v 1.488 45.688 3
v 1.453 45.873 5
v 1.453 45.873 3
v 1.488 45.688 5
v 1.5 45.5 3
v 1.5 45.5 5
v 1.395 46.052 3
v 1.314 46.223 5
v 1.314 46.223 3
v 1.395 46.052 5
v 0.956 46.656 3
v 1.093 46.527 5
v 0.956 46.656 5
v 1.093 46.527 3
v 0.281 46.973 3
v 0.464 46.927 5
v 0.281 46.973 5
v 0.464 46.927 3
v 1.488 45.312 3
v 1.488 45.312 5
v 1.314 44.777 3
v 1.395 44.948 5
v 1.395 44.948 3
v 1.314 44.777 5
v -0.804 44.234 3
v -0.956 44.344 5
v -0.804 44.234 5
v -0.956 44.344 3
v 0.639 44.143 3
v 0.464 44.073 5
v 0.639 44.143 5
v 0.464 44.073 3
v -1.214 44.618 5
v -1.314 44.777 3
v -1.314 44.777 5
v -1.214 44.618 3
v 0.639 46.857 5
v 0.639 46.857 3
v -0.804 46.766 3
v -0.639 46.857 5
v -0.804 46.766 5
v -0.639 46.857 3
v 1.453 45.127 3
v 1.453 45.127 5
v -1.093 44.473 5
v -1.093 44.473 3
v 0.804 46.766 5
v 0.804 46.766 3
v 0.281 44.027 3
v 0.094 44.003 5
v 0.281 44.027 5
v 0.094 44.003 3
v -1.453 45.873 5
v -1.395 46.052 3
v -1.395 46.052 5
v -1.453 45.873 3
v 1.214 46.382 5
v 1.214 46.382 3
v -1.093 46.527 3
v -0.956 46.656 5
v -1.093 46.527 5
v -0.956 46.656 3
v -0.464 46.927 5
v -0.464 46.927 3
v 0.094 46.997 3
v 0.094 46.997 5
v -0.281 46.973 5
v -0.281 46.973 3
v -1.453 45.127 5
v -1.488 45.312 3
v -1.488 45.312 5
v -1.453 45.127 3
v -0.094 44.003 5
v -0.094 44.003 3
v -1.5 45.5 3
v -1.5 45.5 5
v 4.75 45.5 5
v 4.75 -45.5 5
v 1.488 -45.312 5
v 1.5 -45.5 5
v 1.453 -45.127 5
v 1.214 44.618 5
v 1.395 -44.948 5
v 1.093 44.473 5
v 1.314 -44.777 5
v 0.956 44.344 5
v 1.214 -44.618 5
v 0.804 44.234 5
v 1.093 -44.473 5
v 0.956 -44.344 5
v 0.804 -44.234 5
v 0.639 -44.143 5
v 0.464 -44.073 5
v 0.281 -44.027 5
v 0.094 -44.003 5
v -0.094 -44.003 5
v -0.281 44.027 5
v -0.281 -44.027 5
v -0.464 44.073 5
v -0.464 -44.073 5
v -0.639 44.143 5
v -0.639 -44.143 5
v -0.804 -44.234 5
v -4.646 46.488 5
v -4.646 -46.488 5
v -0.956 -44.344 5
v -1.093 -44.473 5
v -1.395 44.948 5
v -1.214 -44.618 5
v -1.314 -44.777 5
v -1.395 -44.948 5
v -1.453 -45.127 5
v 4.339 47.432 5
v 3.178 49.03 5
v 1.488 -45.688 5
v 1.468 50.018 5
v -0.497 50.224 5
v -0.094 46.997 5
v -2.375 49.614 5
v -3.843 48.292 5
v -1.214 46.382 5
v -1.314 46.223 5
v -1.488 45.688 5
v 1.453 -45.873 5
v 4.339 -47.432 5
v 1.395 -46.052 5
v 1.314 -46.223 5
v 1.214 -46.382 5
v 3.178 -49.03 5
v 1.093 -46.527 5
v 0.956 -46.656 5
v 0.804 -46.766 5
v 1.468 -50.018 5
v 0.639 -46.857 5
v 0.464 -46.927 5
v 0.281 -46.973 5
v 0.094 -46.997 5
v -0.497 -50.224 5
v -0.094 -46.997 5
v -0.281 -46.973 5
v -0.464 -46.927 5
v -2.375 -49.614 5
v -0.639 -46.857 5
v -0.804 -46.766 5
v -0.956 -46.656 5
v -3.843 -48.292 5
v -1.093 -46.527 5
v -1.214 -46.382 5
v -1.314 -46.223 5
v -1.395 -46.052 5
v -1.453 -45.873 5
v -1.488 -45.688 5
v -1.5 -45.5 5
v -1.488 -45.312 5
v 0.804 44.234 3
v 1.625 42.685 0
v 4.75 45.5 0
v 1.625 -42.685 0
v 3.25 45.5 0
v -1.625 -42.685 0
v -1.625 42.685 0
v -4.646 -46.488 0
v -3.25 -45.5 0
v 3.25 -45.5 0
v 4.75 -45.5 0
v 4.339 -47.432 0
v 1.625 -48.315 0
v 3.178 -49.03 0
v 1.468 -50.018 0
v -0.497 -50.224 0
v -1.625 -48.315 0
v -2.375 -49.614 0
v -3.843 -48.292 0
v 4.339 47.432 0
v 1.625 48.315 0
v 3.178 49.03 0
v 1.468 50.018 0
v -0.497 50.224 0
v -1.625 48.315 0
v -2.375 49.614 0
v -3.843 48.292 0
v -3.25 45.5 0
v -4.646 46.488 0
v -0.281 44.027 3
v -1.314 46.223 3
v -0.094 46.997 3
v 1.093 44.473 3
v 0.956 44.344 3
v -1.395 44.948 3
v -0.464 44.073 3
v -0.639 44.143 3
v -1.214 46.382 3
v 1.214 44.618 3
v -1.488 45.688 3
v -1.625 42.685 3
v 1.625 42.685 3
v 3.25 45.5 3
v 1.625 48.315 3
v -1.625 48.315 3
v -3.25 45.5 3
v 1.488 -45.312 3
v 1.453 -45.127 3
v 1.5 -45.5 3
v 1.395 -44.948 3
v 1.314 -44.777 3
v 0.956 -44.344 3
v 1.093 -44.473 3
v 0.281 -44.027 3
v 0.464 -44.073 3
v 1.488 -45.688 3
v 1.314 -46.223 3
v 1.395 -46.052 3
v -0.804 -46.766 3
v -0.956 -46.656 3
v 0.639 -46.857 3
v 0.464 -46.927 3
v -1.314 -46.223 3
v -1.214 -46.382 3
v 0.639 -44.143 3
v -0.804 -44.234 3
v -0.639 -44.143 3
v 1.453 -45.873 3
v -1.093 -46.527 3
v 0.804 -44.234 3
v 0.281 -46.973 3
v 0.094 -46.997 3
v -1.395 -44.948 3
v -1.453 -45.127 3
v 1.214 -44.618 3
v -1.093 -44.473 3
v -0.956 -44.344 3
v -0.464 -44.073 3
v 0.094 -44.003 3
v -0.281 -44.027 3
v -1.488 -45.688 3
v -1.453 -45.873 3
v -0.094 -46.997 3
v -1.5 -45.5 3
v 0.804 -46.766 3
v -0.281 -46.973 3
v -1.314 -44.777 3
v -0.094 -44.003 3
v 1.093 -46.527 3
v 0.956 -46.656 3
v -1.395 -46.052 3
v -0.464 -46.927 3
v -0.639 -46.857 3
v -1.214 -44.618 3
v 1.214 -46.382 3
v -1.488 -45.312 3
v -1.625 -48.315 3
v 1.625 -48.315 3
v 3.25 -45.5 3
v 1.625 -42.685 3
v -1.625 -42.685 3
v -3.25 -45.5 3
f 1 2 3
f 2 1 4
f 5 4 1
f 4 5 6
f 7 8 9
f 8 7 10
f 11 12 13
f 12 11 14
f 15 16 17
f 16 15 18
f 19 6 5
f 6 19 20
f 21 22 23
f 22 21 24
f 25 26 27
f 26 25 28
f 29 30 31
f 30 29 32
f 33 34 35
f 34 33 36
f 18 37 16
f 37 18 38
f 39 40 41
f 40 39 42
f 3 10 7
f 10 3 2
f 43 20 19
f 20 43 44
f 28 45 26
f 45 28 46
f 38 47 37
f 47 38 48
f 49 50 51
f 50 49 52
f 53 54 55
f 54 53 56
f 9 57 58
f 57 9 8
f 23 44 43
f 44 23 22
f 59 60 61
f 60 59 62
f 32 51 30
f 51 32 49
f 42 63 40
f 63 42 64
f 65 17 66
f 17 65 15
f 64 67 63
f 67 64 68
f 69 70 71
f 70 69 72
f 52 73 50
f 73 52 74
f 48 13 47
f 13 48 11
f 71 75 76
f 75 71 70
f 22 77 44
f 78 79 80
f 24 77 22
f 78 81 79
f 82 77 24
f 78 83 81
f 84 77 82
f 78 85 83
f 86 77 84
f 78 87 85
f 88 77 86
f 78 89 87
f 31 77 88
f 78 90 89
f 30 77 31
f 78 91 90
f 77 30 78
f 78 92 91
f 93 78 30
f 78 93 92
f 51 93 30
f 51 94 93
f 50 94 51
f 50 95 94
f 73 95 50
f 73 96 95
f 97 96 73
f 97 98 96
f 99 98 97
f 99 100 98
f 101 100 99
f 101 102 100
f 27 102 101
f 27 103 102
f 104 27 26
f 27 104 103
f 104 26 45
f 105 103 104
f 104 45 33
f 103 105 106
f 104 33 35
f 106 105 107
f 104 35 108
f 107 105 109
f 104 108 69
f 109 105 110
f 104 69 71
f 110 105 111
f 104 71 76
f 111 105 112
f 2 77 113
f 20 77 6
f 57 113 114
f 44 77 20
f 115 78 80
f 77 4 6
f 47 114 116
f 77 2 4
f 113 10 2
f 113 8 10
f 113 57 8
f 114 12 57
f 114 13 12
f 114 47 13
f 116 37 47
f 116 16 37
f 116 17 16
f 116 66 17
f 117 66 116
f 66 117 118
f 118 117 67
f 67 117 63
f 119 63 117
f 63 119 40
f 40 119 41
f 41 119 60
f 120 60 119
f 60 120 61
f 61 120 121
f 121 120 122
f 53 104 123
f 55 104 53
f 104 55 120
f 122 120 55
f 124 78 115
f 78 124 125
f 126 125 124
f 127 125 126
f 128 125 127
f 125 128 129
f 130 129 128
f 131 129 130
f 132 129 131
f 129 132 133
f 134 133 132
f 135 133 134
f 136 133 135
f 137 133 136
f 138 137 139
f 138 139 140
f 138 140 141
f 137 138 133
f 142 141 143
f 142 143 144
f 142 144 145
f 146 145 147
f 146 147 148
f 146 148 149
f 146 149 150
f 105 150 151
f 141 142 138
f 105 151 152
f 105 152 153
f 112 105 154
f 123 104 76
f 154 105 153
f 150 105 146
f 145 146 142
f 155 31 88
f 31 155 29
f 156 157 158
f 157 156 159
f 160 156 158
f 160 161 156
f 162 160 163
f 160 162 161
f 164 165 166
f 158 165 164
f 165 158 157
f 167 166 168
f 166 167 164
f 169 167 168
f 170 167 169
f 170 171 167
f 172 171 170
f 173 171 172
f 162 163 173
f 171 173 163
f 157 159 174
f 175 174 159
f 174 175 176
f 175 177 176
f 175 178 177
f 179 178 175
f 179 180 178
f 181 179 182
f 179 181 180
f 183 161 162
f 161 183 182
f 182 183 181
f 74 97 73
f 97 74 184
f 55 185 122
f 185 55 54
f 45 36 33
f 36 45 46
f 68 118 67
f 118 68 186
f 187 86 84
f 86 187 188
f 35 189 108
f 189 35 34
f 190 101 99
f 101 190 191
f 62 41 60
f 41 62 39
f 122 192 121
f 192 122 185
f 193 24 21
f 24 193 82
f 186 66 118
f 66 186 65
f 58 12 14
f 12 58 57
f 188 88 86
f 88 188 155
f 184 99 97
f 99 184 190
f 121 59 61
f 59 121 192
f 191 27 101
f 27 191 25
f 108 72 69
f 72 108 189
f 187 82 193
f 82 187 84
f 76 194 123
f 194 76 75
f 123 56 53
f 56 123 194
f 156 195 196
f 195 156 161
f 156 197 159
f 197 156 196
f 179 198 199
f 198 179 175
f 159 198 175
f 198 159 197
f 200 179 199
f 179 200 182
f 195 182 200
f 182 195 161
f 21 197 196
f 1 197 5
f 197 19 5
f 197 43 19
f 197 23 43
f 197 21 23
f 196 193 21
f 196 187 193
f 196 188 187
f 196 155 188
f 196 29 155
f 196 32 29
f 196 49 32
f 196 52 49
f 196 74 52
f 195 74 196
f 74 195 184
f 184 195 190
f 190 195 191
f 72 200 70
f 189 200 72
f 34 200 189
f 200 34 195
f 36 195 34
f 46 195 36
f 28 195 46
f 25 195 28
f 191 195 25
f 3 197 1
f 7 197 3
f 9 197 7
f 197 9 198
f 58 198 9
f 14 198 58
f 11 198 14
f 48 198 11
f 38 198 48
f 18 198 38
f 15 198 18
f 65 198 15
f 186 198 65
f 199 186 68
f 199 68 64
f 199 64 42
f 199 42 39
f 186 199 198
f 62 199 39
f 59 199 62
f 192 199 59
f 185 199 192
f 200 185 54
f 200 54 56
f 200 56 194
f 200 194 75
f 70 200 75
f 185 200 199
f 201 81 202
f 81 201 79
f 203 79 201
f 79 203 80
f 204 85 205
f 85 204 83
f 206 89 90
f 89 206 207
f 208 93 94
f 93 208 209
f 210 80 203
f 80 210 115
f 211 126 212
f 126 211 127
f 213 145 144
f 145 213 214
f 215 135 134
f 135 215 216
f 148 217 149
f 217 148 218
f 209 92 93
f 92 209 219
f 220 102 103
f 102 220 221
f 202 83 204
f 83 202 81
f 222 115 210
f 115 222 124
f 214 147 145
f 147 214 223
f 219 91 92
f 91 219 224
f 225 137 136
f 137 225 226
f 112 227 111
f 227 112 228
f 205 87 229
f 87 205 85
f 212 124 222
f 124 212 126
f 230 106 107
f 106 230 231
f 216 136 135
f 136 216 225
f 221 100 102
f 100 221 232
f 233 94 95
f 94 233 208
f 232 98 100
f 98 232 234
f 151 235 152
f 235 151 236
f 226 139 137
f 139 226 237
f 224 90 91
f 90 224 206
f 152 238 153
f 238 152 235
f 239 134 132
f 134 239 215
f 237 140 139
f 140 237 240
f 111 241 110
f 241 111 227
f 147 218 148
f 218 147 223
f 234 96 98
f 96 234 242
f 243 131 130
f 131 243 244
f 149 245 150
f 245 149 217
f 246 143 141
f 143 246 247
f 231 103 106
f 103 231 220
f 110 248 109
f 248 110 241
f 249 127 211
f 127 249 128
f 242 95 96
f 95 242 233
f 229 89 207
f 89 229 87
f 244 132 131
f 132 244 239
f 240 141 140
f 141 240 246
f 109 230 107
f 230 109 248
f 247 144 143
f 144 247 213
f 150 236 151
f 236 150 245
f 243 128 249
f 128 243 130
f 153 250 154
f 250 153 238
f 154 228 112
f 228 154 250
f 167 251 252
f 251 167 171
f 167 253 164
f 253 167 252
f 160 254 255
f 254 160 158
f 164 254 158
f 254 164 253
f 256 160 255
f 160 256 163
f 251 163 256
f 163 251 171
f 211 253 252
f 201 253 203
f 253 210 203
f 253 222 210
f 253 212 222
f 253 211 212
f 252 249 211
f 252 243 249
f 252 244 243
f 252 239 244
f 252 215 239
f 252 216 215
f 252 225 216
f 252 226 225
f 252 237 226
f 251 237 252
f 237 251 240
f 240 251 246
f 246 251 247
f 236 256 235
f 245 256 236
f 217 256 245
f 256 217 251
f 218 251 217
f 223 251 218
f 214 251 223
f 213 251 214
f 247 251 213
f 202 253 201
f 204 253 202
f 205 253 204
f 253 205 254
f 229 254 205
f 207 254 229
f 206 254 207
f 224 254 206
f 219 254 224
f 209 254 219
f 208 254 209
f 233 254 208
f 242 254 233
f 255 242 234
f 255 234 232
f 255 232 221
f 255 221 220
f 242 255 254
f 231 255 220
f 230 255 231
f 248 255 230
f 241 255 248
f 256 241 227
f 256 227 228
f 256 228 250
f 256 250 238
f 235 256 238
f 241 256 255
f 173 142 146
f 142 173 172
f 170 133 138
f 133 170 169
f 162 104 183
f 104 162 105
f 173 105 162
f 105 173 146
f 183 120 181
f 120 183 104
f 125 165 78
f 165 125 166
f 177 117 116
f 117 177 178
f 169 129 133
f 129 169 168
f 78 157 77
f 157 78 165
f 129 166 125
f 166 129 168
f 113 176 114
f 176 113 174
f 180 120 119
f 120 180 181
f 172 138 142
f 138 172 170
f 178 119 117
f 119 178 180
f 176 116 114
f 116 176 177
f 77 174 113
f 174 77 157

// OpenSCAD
w=91;
h=5;
nut_d=6.5;
nut_h=3;

// -----
wh=w/2;
hh=h/2;


module hole(t_y) {
    cylinder(h=h, d=3, $fn=50);
    cylinder(h=nut_h, d=nut_d, $fn=6);
}

difference() {
    hull() {
        translate([0, wh, 0]) cylinder(h=h, d=nut_d+3);
        translate([0, -wh, 0]) cylinder(h=h, d=nut_d+3);
    }
    union() {
    translate([0, wh, 0]) hole();
    translate([0, -wh, 0]) hole();
    }
}
